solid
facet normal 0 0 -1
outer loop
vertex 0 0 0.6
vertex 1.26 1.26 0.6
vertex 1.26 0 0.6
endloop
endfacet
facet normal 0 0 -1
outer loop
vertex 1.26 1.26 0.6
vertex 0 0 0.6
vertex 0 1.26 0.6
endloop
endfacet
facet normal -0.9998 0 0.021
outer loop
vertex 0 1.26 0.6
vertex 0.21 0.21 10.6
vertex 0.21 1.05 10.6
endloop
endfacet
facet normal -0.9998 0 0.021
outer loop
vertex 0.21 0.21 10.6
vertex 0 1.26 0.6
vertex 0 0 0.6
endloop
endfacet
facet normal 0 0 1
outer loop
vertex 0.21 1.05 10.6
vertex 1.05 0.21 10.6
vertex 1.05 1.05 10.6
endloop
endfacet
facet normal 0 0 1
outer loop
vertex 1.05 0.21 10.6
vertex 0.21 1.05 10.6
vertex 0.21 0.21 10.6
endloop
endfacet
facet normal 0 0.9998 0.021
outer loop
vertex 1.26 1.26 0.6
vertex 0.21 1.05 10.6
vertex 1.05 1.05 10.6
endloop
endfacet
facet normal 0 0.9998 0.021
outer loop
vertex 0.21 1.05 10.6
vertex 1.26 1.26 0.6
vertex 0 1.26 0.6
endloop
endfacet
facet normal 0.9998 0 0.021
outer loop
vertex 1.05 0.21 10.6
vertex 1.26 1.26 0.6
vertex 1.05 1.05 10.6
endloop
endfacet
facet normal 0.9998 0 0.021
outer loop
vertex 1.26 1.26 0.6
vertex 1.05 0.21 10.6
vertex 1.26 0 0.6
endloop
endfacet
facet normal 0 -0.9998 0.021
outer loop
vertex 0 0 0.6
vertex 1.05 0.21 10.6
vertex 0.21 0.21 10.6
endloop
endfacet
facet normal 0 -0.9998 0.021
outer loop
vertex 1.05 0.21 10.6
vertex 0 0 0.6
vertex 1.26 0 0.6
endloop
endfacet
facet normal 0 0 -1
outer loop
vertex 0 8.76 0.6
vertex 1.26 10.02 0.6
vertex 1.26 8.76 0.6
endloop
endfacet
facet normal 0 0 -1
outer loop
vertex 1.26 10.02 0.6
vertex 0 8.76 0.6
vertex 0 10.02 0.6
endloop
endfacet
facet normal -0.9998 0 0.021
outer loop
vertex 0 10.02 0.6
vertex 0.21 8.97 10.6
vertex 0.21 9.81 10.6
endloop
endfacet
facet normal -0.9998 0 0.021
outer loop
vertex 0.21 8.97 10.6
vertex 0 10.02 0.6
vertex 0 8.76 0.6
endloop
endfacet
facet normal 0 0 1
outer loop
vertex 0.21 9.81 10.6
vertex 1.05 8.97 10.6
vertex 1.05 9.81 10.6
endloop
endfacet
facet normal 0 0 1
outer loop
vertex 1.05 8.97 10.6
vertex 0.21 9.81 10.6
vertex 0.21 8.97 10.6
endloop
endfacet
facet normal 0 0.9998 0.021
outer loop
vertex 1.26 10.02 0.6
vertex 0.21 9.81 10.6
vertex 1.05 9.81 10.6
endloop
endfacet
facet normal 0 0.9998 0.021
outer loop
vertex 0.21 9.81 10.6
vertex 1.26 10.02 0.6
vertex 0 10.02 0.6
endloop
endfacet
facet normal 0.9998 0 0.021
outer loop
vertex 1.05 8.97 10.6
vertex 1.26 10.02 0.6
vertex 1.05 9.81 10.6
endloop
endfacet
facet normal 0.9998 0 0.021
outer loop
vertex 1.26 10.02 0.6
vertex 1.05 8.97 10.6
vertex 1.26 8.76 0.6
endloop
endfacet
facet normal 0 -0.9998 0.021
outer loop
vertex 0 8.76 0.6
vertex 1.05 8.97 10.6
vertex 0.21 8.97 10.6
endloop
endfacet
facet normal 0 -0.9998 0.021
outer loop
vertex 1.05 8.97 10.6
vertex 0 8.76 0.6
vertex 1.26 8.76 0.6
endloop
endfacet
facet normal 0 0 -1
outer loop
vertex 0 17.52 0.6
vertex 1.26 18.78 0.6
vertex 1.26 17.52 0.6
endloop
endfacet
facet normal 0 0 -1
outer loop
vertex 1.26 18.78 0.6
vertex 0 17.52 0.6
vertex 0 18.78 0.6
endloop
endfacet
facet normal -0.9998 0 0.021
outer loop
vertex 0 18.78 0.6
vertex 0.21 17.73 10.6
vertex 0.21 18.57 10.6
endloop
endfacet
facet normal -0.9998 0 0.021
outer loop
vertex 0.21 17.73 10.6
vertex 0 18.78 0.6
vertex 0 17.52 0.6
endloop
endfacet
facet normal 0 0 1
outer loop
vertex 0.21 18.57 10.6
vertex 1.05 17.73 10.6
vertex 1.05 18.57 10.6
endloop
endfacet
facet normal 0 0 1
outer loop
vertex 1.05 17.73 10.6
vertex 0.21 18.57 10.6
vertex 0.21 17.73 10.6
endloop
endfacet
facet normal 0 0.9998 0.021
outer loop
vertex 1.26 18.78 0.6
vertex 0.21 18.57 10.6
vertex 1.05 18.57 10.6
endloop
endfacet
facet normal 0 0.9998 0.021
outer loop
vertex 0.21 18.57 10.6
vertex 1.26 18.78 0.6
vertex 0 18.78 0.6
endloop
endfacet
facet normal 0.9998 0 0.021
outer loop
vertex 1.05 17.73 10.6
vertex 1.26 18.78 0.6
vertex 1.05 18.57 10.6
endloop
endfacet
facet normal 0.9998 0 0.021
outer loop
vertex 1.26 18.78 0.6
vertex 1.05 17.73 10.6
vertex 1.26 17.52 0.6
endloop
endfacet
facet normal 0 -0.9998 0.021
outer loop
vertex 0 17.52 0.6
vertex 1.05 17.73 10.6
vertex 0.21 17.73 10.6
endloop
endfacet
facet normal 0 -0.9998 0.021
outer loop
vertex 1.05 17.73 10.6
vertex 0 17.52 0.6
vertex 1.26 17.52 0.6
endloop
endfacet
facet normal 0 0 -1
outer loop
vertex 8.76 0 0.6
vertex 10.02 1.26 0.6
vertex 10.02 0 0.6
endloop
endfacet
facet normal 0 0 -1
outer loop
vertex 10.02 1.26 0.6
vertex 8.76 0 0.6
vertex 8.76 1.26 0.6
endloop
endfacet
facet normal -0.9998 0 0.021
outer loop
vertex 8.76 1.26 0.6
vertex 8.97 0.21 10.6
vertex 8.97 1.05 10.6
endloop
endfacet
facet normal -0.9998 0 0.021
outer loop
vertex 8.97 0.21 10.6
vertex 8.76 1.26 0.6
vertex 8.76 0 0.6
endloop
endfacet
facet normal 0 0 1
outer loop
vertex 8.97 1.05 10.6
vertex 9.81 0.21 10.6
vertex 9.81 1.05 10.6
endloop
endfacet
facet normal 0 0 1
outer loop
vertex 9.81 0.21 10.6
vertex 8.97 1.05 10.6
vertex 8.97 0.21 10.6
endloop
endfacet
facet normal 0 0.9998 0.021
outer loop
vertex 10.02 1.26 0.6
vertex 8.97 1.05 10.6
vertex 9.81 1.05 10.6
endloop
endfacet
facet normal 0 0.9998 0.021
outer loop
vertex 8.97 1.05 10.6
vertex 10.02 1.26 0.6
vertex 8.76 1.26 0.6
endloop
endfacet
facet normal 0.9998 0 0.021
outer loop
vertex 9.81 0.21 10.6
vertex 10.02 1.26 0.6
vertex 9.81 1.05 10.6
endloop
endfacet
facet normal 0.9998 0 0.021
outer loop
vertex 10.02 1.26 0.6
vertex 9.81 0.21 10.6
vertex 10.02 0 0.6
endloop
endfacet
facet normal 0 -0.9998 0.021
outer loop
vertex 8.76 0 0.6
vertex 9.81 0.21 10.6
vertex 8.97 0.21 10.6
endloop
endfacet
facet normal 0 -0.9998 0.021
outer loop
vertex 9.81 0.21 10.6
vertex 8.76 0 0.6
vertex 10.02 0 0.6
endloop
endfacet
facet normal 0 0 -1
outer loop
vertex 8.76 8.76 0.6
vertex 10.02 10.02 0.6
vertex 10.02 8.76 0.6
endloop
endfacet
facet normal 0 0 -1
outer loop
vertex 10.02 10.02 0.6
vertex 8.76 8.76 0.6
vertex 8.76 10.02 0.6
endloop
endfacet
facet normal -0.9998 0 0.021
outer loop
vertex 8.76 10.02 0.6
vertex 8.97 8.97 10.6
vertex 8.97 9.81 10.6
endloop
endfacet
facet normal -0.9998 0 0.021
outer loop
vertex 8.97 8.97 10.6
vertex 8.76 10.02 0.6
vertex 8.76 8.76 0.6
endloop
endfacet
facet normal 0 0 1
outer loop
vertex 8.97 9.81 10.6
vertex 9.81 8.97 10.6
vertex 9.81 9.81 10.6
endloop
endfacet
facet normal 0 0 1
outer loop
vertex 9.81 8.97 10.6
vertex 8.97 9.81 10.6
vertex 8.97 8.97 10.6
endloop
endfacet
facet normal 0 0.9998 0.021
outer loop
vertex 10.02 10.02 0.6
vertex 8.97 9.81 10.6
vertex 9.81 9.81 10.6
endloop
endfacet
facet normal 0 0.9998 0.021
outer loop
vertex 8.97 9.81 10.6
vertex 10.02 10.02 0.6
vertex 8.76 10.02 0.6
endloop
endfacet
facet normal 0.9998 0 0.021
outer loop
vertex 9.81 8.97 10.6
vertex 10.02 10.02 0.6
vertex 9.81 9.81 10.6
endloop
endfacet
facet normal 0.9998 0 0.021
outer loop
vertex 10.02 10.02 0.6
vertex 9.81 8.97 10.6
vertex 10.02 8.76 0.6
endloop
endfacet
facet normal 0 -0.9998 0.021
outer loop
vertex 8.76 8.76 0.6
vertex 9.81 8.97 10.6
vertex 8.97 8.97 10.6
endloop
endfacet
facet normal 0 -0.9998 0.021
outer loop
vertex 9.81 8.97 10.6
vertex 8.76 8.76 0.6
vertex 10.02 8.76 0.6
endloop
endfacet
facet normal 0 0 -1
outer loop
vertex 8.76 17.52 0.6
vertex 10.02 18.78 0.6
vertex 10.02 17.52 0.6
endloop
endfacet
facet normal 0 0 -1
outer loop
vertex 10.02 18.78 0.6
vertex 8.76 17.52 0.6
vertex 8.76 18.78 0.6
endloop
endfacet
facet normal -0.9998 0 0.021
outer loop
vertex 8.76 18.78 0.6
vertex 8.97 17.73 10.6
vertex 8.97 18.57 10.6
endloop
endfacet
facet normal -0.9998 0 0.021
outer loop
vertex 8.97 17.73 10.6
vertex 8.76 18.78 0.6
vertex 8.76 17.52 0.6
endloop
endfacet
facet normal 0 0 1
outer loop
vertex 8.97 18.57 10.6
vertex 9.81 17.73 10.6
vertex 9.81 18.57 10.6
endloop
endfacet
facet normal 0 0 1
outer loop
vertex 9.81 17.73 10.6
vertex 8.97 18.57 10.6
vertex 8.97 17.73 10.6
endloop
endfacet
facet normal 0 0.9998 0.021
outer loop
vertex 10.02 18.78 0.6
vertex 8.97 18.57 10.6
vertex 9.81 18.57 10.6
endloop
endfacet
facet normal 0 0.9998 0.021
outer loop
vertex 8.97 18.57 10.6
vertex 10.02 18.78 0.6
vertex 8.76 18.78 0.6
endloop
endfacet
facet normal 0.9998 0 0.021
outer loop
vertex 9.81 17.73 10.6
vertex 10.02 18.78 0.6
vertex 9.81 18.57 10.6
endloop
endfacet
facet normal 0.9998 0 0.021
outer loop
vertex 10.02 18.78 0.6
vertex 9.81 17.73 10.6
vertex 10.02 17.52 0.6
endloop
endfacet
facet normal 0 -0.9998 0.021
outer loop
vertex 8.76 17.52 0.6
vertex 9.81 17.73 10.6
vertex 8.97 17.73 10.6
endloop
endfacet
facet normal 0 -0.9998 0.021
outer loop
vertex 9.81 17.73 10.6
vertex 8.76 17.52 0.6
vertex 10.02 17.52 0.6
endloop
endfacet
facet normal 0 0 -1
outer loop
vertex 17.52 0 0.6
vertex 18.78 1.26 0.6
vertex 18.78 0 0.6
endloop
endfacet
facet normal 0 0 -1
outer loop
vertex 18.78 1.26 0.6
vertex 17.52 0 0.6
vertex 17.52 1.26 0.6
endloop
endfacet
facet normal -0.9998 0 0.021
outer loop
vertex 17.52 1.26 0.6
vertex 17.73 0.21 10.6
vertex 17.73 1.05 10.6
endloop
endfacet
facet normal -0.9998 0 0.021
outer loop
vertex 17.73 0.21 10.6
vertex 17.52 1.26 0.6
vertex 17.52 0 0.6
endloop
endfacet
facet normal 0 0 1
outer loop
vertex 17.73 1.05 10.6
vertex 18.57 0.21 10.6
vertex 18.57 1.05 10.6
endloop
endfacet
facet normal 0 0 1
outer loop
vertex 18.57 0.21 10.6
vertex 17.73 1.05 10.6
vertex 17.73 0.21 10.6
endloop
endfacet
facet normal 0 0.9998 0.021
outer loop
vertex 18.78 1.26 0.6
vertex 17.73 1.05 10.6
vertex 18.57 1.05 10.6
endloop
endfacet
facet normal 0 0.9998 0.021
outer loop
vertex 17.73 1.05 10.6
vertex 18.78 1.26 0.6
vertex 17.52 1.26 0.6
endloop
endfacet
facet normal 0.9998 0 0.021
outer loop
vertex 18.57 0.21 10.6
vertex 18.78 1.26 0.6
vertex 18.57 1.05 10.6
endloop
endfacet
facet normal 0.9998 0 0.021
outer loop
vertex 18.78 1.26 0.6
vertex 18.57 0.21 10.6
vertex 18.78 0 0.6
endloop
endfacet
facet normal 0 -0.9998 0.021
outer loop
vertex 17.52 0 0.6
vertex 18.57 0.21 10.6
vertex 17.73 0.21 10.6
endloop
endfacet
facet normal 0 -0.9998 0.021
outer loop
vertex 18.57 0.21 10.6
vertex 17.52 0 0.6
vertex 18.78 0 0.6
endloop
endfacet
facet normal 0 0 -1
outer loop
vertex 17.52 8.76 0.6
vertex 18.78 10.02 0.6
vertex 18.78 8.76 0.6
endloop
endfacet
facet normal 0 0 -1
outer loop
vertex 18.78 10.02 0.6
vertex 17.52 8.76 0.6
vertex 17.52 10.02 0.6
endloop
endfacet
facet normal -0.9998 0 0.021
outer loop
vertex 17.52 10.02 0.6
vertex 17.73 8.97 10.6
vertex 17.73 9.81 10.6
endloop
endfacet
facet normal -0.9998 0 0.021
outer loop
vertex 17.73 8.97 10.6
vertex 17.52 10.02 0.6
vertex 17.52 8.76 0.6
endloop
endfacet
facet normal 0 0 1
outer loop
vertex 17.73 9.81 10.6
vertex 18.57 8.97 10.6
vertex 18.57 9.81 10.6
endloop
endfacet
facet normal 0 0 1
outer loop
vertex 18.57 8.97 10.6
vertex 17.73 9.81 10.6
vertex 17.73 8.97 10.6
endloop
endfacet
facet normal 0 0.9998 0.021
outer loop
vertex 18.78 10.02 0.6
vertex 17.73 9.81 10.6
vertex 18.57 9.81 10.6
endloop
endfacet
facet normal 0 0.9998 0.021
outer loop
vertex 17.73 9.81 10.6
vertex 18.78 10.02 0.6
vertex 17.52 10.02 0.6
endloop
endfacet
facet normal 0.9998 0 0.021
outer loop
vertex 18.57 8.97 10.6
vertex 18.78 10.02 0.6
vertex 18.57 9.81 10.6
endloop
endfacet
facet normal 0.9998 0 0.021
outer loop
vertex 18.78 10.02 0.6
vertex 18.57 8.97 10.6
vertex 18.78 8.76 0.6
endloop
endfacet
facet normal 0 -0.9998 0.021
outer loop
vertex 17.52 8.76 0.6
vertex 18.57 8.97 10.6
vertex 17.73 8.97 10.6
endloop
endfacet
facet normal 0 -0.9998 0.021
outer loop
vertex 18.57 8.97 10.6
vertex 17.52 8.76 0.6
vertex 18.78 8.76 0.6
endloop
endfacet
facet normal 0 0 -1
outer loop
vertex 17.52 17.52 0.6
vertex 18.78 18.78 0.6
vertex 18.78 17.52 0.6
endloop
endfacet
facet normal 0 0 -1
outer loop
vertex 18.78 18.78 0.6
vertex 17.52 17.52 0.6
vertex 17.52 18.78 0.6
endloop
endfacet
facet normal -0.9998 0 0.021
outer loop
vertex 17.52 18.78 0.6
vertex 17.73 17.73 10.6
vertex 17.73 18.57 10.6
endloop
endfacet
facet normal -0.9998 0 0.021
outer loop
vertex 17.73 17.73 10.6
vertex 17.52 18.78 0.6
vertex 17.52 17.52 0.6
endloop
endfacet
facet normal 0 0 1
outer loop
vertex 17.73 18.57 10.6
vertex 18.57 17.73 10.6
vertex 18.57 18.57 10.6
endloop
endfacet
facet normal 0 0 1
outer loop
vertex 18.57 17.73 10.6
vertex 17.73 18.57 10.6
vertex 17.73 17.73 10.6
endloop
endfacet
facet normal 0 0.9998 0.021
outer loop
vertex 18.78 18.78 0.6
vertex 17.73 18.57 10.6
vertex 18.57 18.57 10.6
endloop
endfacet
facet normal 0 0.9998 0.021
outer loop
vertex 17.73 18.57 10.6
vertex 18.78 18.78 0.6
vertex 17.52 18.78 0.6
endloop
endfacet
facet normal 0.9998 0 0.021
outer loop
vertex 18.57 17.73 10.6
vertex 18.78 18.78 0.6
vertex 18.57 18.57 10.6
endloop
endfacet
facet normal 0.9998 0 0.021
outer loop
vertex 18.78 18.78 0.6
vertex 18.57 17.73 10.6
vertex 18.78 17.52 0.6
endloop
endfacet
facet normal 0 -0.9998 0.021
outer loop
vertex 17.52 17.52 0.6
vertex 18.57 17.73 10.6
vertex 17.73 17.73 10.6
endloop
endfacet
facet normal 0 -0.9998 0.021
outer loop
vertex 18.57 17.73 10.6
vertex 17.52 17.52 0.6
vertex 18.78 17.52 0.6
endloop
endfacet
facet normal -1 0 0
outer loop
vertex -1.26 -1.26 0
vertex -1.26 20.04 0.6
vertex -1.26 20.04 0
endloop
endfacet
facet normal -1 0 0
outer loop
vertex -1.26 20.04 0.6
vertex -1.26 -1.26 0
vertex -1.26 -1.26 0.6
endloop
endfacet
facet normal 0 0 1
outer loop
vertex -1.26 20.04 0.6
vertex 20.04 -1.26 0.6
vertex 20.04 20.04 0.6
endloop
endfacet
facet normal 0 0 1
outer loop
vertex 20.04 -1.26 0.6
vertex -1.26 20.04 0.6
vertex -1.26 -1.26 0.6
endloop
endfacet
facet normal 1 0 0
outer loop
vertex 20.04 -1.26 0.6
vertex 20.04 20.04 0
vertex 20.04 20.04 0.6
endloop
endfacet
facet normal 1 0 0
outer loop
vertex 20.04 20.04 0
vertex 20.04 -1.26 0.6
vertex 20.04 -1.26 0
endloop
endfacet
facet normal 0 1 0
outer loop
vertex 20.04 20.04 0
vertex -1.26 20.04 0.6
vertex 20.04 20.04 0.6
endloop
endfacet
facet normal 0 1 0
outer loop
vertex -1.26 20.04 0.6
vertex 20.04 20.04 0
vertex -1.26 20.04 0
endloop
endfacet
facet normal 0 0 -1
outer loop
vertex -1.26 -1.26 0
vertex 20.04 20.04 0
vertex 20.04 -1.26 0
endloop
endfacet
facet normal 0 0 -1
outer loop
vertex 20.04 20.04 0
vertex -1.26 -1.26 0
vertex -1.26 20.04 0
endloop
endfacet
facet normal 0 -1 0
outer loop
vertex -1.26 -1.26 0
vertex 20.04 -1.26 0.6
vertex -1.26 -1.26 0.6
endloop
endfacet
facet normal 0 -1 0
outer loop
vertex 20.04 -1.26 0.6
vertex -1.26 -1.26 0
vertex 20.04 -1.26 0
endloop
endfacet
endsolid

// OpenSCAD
include <3d-printer-testing-suite.scad>

/* [Hidden] */
test_type = "stringing";
